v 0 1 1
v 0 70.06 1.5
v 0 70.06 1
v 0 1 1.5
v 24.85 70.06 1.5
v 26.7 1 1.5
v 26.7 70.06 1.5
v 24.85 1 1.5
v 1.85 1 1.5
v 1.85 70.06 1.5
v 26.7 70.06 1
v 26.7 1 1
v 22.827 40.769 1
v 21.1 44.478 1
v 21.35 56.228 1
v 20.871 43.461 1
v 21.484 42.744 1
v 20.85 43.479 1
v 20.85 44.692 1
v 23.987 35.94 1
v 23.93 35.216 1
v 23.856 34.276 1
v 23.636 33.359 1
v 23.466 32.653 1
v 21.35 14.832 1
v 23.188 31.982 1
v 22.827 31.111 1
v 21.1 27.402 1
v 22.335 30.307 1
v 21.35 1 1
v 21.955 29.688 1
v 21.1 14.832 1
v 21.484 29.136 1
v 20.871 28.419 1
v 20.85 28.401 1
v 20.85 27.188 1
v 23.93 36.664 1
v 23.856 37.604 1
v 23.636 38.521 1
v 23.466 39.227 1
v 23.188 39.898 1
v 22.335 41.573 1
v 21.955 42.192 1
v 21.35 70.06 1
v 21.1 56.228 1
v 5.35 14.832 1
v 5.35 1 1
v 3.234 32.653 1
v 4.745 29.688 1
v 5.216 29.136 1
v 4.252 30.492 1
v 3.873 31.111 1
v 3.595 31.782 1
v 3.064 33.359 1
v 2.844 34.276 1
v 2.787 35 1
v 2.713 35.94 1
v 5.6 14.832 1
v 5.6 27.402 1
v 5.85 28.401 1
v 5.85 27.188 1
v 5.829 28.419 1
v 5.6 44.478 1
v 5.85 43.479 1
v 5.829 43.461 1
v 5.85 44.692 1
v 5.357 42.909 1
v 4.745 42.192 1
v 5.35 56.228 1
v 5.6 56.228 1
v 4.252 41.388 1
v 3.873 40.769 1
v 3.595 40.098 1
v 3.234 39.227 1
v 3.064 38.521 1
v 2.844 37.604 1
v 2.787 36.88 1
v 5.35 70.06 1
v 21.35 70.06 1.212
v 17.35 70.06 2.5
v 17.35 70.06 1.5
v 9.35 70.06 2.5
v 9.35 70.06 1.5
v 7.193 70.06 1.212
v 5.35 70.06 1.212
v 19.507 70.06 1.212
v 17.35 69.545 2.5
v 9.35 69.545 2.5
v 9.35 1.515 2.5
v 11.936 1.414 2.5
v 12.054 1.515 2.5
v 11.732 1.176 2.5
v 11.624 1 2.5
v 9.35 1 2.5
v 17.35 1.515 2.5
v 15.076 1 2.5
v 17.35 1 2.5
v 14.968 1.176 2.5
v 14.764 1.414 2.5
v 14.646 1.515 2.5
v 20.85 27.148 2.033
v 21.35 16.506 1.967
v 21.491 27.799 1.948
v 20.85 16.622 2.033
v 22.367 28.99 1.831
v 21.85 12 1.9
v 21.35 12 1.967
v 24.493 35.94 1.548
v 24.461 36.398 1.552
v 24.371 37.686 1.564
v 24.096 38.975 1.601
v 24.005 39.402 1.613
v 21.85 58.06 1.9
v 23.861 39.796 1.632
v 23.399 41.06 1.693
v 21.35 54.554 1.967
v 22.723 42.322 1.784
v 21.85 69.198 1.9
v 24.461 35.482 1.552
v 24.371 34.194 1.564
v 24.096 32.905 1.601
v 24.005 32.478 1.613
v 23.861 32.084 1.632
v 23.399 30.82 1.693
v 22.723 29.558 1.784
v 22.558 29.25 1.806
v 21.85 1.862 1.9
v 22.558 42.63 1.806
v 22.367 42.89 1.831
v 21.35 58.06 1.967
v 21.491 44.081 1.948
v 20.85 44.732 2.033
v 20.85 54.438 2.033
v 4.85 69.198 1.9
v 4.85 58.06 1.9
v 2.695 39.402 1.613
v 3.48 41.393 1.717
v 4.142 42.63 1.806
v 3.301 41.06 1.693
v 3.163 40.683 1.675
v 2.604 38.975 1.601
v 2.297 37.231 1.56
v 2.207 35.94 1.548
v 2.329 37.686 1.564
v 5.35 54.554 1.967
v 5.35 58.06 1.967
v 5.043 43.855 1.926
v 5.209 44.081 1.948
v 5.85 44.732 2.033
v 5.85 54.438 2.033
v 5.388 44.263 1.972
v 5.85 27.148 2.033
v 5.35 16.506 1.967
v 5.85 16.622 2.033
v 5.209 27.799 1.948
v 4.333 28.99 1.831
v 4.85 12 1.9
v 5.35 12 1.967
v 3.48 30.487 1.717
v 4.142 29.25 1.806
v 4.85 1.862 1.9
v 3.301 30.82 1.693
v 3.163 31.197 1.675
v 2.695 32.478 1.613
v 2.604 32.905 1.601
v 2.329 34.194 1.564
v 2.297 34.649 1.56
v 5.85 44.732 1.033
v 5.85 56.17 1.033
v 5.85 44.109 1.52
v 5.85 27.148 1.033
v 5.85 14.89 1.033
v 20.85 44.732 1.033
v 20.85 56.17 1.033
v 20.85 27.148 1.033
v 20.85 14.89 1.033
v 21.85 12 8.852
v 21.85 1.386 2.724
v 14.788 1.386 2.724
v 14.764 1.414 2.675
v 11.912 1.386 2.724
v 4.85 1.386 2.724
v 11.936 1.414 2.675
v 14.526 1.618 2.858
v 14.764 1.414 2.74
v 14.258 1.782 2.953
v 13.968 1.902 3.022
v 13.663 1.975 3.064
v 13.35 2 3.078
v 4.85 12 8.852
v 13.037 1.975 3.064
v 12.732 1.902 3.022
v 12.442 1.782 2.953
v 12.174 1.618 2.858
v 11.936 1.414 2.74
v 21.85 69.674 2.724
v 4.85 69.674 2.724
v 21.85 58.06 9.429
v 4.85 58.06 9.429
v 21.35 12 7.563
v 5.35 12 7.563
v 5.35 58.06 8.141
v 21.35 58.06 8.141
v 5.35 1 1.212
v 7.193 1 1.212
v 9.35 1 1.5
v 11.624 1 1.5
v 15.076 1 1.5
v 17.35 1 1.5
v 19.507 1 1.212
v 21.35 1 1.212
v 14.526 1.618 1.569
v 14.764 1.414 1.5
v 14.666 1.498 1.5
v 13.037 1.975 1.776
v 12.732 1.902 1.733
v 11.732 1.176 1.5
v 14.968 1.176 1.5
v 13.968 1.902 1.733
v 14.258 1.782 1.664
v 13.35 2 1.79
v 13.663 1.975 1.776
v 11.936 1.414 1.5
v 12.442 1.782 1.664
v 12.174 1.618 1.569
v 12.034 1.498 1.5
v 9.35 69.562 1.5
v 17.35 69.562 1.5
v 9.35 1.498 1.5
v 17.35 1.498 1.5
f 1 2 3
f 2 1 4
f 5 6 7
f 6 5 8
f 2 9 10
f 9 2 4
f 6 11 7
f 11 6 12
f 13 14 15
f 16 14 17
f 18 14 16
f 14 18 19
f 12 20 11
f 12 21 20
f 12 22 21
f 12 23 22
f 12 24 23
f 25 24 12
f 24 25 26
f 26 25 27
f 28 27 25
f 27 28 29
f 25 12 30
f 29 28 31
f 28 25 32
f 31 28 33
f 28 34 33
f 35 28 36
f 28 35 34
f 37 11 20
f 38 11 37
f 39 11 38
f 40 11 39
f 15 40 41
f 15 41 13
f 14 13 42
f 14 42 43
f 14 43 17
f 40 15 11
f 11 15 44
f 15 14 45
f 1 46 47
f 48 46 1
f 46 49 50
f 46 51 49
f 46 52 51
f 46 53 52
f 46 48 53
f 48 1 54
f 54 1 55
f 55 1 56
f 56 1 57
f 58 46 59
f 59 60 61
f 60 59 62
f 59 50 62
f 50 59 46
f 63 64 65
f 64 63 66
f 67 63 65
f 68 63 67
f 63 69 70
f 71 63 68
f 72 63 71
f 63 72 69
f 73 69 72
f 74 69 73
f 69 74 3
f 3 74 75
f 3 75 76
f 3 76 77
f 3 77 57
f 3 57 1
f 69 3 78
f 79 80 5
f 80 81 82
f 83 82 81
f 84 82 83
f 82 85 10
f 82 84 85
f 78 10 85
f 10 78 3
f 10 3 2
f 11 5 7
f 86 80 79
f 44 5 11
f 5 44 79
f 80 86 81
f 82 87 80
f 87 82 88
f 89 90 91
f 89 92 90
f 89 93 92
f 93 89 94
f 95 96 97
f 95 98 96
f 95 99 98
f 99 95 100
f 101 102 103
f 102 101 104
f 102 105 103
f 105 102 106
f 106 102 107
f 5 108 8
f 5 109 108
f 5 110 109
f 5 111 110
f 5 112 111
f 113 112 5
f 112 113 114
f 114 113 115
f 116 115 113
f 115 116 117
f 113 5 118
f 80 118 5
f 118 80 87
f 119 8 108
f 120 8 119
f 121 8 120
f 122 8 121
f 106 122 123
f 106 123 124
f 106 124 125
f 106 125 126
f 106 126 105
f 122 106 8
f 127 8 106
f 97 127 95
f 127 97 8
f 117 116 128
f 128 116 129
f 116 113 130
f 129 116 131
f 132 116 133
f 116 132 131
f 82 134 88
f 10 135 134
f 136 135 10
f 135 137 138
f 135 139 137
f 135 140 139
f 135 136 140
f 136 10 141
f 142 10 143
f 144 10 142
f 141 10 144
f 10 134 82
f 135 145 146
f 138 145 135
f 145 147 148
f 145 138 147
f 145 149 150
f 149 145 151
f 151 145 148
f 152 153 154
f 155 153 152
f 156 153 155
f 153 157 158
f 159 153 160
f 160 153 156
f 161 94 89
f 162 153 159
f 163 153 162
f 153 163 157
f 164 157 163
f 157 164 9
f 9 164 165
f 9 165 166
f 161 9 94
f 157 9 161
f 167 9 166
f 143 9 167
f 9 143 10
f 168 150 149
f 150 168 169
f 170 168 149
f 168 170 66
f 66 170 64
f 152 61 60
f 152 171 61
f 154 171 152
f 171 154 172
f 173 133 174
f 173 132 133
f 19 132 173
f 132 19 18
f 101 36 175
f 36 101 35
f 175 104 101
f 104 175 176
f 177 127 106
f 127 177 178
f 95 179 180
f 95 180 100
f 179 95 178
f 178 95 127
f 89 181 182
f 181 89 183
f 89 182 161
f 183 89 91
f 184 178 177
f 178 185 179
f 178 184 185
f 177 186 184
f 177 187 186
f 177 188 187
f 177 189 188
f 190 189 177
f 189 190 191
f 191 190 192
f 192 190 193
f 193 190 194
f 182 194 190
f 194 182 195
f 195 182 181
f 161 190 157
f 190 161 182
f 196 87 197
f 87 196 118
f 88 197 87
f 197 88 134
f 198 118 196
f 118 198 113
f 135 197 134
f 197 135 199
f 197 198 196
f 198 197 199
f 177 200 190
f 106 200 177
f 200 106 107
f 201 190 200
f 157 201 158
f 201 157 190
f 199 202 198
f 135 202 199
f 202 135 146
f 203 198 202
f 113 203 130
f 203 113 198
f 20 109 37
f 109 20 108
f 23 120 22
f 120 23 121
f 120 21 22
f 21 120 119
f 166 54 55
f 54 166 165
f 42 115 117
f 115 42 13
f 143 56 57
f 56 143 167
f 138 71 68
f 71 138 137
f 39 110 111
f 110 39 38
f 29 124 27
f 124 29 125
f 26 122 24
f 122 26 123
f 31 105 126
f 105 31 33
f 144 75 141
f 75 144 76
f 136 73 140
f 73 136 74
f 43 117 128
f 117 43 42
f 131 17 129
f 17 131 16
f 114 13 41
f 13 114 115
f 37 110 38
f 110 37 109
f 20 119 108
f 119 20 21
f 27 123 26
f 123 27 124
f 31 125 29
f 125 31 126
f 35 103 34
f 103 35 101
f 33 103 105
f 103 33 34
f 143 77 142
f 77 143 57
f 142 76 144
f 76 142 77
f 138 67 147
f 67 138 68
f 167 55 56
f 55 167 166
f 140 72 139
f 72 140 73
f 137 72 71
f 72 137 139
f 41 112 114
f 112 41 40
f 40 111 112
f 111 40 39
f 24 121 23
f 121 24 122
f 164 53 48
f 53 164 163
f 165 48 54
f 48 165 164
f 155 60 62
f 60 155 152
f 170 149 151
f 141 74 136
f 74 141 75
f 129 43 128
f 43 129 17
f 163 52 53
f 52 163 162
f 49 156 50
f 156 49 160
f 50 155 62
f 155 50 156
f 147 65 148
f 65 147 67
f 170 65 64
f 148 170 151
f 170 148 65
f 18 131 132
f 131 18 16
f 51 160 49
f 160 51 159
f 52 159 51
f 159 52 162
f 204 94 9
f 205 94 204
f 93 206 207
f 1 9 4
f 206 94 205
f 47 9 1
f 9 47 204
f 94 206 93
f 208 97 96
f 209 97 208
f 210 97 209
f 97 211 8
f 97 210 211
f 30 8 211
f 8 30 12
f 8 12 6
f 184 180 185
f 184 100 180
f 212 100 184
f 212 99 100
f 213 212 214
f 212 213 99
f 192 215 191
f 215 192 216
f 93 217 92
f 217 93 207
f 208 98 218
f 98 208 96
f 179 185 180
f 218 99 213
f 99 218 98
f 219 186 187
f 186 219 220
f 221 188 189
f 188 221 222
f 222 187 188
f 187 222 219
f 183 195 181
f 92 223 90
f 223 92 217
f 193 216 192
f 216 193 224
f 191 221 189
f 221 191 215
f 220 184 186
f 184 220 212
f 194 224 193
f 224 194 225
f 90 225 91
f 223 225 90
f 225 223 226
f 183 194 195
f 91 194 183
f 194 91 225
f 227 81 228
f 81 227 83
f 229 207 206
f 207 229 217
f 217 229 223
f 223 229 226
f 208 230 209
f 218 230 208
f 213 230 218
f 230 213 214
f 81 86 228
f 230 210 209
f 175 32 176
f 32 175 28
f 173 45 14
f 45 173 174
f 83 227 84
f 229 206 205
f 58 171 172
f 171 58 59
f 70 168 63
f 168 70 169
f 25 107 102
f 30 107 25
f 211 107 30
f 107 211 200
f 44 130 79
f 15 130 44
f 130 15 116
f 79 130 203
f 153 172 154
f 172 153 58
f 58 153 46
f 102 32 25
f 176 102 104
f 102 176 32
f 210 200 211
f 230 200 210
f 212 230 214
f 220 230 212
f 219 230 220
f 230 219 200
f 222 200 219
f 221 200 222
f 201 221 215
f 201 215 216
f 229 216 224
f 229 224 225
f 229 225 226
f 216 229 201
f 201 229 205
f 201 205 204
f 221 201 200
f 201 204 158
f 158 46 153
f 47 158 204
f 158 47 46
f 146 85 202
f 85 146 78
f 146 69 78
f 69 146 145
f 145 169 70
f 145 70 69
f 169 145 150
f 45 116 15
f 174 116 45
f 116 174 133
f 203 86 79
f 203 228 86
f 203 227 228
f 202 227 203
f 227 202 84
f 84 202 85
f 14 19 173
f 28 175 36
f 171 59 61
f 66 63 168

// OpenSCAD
$fn=40;

/* Diffuser Lense For A Particular Project (OpenSCAD) */

/* Camera */
cam_dia = 10.5;

/* LED PCB */
ledpcbw = 26.7;
ledpcbh = 71.88;
ledpcb_thickness = 3.47;
ledpcb_header_pos = 25;
ledpcb_header_w = 9;
holedia = (cam_dia + 8);

/* Diffuser */
diffuserw=ledpcbw;
diffuserh=ledpcbh-1.82;
thickness=ledpcb_thickness-1.59;

/* Top Diffuser */
diffuser_top_h=0.5;

/* Bottom Diffuser */
diffuser_bottom_h=1;

/* Enclosure hole */
enclosurew = ledpcb_header_pos-2;

/* SMD LED */
ledh = 2.76-1.59;
ledw = 4;
ledd = 1.6;

/* INSET */
led_mount_inset = 5;
led_mount_angle = 180-60;
led_mount_tol=2;
led_mount_thickness=3;

module led_mount(rotation, w, d, h)
{
  rotate([rotation,0,0])
    union()
    {
      translate([ledpcbw/2 - w/2, -d/2, -h])
        cube([w,d,h+4]);
    }
}

module black_cover_bulk()
{
  bthick=2;
  difference()
  {
    union()
    { 
      // Main object
      difference()
      {
        union()
        { // Main Body
          difference(){
            union(){
              // Top Diffuser
              cube([diffuserw,diffuserh,diffuser_top_h]);
              
              // Bottom Diffuser
              bottom_flat_width = ledw;
              hull()
              {
                translate([(diffuserw - enclosurew)/2,0,0])
                  cube([enclosurew,diffuserh,diffuser_top_h]);
                translate([ledpcbw/2 - bottom_flat_width,0,diffuser_top_h])
                  cube([bottom_flat_width*2, diffuserh, diffuser_bottom_h]);
              }
            }
            
            /* Trimming */
            center_removex = 15;
            center_removey = 50;
            translate([ledpcbw/2,ledpcbh/2,-thickness/2])
              cube([center_removex,center_removey,1000], center=true);
          }
          
          // LED Holes
          intersection()
          {
            union()
            {
              translate([0,2+led_mount_inset,0])
                led_mount(led_mount_angle,ledw+led_mount_tol*4+led_mount_thickness+bthick,ledd+led_mount_tol+led_mount_thickness+bthick,ledh+led_mount_thickness+10);
              translate([0,-1+diffuserh-led_mount_inset,0])
                led_mount(-led_mount_angle,ledw+led_mount_tol*4+led_mount_thickness+bthick,ledd+led_mount_tol+led_mount_thickness+bthick,ledh+led_mount_thickness+15);
            }
            
            union()
            {
              exclude_length = 12;
              translate([0,0,0])
                cube([diffuserw,exclude_length,100]);
              translate([0,diffuserh-exclude_length,0])
                cube([diffuserw,exclude_length,100]);
            }
          }
        }

        // Camera Hole
        translate([ledpcbw/2,ledpcbh/2,-thickness/2])
          cylinder(thickness*3,d=holedia);

        // Camera Hole Bottom Lip
        translate([ledpcbw/2,ledpcbh/2, diffuser_top_h+diffuser_bottom_h-3+0.001])
          cylinder(3, d1=holedia, d2=holedia*1.3);
       }
    }

    /* Trimming */
    translate([0,0,-thickness])
      cube([diffuserw,1,thickness*4]);
    
    /* Trimming */
    translate([ledpcbw/2,0,-thickness])
      cylinder(r=2,h=100);
    
    /* Remove bottom */
    translate([0,0,-5])
      cube([1000,1000,10], center=true);  
  }
}



module original_diffuser()
{
  difference()
  {
    union()
    { 
      // Main object
      difference()
      {
        union()
        { // Main Body
          
          // Top Diffuser
          cube([diffuserw,diffuserh,diffuser_top_h]);
          
          // Bottom Diffuser
          bottom_flat_width = ledw;
          hull()
          {
            translate([(diffuserw - enclosurew)/2,0,0])
              cube([enclosurew,diffuserh,diffuser_top_h]);
            translate([ledpcbw/2 - bottom_flat_width,0,diffuser_top_h])
              cube([bottom_flat_width*2, diffuserh, diffuser_bottom_h]);
          }
          
          // LED Holes
          translate([0,1+led_mount_inset,0])
            led_mount(led_mount_angle,ledw+led_mount_tol*4+led_mount_thickness,ledd+led_mount_tol+led_mount_thickness,ledh+led_mount_thickness+2);
          translate([0,diffuserh-led_mount_inset,0])
            led_mount(-led_mount_angle,ledw+led_mount_tol*4+led_mount_thickness,ledd+led_mount_tol+led_mount_thickness,ledh+led_mount_thickness+2);
        }

        // LED Holes
        translate([0,1+led_mount_inset,0])
          led_mount(led_mount_angle,ledw+led_mount_tol*4,ledd+led_mount_tol,ledh+2);
        translate([0,diffuserh-led_mount_inset,0])
          led_mount(-led_mount_angle,ledw+led_mount_tol*4,ledd+led_mount_tol,ledh+2);

        // Camera Hole
        translate([ledpcbw/2,ledpcbh/2,-thickness/2])
          cylinder(thickness*3,d=holedia);

        // Camera Hole Bottom Lip
        translate([ledpcbw/2,ledpcbh/2, diffuser_top_h+diffuser_bottom_h-3+0.001])
          cylinder(3, d1=holedia, d2=holedia*1.3);
       }
    }
    
    /* Trimming */
    translate([0,0,-thickness])
      cube([diffuserw,1,thickness*4]);
    
    /* Remove bottom */
    translate([0,0,-5])
      cube([1000,1000,10], center=true);  
    
    /* Trimming */
    translate([ledpcbw/2,0,-thickness])
      cylinder(r=2,h=100);
  }
}

module original_diffuser_keepout(standoff_dist)
{
  difference()
  {
    union()
    { 
      // Main object
      difference()
      {
        union()
        { // Main Body
          
          // Top Diffuser
          cube([diffuserw,diffuserh,diffuser_top_h]);
          
          // Bottom Diffuser
          bottom_flat_width = ledw;
          hull()
          {
            translate([(diffuserw - enclosurew)/2,0,0])
              cube([enclosurew,diffuserh,diffuser_top_h]);
            translate([ledpcbw/2 - bottom_flat_width,0,diffuser_top_h])
              cube([bottom_flat_width*2, diffuserh, diffuser_bottom_h]);
          }
          
          // LED Holes
          translate([0,1+led_mount_inset,0])
            led_mount(led_mount_angle,ledw+led_mount_tol*4+led_mount_thickness+standoff_dist*2,ledd+led_mount_tol+led_mount_thickness+standoff_dist,ledh+led_mount_thickness+2+standoff_dist+30);
          translate([0,diffuserh-led_mount_inset,0])
            led_mount(-led_mount_angle,ledw+led_mount_tol*4+led_mount_thickness+standoff_dist*2,ledd+led_mount_tol+led_mount_thickness+standoff_dist,ledh+led_mount_thickness+2+standoff_dist+30);
        }

        // Camera Hole
        translate([ledpcbw/2,ledpcbh/2,-thickness/2])
          cylinder(thickness*3,d=holedia);

        // Camera Hole Bottom Lip
        translate([ledpcbw/2,ledpcbh/2, diffuser_top_h+diffuser_bottom_h-3+0.001])
          cylinder(3, d1=holedia, d2=holedia*1.3);
       }
    }
    
    /* Trimming */
    translate([0,0,-thickness])
      cube([diffuserw,1,thickness*4]);
    
    /* Remove bottom */
    translate([0,0,-5])
      cube([1000,1000,10], center=true);  
  }
}

%original_diffuser();

difference()
{
  translate([0,0,1])
    black_cover_bulk();
  original_diffuser_keepout(0.5);
}
